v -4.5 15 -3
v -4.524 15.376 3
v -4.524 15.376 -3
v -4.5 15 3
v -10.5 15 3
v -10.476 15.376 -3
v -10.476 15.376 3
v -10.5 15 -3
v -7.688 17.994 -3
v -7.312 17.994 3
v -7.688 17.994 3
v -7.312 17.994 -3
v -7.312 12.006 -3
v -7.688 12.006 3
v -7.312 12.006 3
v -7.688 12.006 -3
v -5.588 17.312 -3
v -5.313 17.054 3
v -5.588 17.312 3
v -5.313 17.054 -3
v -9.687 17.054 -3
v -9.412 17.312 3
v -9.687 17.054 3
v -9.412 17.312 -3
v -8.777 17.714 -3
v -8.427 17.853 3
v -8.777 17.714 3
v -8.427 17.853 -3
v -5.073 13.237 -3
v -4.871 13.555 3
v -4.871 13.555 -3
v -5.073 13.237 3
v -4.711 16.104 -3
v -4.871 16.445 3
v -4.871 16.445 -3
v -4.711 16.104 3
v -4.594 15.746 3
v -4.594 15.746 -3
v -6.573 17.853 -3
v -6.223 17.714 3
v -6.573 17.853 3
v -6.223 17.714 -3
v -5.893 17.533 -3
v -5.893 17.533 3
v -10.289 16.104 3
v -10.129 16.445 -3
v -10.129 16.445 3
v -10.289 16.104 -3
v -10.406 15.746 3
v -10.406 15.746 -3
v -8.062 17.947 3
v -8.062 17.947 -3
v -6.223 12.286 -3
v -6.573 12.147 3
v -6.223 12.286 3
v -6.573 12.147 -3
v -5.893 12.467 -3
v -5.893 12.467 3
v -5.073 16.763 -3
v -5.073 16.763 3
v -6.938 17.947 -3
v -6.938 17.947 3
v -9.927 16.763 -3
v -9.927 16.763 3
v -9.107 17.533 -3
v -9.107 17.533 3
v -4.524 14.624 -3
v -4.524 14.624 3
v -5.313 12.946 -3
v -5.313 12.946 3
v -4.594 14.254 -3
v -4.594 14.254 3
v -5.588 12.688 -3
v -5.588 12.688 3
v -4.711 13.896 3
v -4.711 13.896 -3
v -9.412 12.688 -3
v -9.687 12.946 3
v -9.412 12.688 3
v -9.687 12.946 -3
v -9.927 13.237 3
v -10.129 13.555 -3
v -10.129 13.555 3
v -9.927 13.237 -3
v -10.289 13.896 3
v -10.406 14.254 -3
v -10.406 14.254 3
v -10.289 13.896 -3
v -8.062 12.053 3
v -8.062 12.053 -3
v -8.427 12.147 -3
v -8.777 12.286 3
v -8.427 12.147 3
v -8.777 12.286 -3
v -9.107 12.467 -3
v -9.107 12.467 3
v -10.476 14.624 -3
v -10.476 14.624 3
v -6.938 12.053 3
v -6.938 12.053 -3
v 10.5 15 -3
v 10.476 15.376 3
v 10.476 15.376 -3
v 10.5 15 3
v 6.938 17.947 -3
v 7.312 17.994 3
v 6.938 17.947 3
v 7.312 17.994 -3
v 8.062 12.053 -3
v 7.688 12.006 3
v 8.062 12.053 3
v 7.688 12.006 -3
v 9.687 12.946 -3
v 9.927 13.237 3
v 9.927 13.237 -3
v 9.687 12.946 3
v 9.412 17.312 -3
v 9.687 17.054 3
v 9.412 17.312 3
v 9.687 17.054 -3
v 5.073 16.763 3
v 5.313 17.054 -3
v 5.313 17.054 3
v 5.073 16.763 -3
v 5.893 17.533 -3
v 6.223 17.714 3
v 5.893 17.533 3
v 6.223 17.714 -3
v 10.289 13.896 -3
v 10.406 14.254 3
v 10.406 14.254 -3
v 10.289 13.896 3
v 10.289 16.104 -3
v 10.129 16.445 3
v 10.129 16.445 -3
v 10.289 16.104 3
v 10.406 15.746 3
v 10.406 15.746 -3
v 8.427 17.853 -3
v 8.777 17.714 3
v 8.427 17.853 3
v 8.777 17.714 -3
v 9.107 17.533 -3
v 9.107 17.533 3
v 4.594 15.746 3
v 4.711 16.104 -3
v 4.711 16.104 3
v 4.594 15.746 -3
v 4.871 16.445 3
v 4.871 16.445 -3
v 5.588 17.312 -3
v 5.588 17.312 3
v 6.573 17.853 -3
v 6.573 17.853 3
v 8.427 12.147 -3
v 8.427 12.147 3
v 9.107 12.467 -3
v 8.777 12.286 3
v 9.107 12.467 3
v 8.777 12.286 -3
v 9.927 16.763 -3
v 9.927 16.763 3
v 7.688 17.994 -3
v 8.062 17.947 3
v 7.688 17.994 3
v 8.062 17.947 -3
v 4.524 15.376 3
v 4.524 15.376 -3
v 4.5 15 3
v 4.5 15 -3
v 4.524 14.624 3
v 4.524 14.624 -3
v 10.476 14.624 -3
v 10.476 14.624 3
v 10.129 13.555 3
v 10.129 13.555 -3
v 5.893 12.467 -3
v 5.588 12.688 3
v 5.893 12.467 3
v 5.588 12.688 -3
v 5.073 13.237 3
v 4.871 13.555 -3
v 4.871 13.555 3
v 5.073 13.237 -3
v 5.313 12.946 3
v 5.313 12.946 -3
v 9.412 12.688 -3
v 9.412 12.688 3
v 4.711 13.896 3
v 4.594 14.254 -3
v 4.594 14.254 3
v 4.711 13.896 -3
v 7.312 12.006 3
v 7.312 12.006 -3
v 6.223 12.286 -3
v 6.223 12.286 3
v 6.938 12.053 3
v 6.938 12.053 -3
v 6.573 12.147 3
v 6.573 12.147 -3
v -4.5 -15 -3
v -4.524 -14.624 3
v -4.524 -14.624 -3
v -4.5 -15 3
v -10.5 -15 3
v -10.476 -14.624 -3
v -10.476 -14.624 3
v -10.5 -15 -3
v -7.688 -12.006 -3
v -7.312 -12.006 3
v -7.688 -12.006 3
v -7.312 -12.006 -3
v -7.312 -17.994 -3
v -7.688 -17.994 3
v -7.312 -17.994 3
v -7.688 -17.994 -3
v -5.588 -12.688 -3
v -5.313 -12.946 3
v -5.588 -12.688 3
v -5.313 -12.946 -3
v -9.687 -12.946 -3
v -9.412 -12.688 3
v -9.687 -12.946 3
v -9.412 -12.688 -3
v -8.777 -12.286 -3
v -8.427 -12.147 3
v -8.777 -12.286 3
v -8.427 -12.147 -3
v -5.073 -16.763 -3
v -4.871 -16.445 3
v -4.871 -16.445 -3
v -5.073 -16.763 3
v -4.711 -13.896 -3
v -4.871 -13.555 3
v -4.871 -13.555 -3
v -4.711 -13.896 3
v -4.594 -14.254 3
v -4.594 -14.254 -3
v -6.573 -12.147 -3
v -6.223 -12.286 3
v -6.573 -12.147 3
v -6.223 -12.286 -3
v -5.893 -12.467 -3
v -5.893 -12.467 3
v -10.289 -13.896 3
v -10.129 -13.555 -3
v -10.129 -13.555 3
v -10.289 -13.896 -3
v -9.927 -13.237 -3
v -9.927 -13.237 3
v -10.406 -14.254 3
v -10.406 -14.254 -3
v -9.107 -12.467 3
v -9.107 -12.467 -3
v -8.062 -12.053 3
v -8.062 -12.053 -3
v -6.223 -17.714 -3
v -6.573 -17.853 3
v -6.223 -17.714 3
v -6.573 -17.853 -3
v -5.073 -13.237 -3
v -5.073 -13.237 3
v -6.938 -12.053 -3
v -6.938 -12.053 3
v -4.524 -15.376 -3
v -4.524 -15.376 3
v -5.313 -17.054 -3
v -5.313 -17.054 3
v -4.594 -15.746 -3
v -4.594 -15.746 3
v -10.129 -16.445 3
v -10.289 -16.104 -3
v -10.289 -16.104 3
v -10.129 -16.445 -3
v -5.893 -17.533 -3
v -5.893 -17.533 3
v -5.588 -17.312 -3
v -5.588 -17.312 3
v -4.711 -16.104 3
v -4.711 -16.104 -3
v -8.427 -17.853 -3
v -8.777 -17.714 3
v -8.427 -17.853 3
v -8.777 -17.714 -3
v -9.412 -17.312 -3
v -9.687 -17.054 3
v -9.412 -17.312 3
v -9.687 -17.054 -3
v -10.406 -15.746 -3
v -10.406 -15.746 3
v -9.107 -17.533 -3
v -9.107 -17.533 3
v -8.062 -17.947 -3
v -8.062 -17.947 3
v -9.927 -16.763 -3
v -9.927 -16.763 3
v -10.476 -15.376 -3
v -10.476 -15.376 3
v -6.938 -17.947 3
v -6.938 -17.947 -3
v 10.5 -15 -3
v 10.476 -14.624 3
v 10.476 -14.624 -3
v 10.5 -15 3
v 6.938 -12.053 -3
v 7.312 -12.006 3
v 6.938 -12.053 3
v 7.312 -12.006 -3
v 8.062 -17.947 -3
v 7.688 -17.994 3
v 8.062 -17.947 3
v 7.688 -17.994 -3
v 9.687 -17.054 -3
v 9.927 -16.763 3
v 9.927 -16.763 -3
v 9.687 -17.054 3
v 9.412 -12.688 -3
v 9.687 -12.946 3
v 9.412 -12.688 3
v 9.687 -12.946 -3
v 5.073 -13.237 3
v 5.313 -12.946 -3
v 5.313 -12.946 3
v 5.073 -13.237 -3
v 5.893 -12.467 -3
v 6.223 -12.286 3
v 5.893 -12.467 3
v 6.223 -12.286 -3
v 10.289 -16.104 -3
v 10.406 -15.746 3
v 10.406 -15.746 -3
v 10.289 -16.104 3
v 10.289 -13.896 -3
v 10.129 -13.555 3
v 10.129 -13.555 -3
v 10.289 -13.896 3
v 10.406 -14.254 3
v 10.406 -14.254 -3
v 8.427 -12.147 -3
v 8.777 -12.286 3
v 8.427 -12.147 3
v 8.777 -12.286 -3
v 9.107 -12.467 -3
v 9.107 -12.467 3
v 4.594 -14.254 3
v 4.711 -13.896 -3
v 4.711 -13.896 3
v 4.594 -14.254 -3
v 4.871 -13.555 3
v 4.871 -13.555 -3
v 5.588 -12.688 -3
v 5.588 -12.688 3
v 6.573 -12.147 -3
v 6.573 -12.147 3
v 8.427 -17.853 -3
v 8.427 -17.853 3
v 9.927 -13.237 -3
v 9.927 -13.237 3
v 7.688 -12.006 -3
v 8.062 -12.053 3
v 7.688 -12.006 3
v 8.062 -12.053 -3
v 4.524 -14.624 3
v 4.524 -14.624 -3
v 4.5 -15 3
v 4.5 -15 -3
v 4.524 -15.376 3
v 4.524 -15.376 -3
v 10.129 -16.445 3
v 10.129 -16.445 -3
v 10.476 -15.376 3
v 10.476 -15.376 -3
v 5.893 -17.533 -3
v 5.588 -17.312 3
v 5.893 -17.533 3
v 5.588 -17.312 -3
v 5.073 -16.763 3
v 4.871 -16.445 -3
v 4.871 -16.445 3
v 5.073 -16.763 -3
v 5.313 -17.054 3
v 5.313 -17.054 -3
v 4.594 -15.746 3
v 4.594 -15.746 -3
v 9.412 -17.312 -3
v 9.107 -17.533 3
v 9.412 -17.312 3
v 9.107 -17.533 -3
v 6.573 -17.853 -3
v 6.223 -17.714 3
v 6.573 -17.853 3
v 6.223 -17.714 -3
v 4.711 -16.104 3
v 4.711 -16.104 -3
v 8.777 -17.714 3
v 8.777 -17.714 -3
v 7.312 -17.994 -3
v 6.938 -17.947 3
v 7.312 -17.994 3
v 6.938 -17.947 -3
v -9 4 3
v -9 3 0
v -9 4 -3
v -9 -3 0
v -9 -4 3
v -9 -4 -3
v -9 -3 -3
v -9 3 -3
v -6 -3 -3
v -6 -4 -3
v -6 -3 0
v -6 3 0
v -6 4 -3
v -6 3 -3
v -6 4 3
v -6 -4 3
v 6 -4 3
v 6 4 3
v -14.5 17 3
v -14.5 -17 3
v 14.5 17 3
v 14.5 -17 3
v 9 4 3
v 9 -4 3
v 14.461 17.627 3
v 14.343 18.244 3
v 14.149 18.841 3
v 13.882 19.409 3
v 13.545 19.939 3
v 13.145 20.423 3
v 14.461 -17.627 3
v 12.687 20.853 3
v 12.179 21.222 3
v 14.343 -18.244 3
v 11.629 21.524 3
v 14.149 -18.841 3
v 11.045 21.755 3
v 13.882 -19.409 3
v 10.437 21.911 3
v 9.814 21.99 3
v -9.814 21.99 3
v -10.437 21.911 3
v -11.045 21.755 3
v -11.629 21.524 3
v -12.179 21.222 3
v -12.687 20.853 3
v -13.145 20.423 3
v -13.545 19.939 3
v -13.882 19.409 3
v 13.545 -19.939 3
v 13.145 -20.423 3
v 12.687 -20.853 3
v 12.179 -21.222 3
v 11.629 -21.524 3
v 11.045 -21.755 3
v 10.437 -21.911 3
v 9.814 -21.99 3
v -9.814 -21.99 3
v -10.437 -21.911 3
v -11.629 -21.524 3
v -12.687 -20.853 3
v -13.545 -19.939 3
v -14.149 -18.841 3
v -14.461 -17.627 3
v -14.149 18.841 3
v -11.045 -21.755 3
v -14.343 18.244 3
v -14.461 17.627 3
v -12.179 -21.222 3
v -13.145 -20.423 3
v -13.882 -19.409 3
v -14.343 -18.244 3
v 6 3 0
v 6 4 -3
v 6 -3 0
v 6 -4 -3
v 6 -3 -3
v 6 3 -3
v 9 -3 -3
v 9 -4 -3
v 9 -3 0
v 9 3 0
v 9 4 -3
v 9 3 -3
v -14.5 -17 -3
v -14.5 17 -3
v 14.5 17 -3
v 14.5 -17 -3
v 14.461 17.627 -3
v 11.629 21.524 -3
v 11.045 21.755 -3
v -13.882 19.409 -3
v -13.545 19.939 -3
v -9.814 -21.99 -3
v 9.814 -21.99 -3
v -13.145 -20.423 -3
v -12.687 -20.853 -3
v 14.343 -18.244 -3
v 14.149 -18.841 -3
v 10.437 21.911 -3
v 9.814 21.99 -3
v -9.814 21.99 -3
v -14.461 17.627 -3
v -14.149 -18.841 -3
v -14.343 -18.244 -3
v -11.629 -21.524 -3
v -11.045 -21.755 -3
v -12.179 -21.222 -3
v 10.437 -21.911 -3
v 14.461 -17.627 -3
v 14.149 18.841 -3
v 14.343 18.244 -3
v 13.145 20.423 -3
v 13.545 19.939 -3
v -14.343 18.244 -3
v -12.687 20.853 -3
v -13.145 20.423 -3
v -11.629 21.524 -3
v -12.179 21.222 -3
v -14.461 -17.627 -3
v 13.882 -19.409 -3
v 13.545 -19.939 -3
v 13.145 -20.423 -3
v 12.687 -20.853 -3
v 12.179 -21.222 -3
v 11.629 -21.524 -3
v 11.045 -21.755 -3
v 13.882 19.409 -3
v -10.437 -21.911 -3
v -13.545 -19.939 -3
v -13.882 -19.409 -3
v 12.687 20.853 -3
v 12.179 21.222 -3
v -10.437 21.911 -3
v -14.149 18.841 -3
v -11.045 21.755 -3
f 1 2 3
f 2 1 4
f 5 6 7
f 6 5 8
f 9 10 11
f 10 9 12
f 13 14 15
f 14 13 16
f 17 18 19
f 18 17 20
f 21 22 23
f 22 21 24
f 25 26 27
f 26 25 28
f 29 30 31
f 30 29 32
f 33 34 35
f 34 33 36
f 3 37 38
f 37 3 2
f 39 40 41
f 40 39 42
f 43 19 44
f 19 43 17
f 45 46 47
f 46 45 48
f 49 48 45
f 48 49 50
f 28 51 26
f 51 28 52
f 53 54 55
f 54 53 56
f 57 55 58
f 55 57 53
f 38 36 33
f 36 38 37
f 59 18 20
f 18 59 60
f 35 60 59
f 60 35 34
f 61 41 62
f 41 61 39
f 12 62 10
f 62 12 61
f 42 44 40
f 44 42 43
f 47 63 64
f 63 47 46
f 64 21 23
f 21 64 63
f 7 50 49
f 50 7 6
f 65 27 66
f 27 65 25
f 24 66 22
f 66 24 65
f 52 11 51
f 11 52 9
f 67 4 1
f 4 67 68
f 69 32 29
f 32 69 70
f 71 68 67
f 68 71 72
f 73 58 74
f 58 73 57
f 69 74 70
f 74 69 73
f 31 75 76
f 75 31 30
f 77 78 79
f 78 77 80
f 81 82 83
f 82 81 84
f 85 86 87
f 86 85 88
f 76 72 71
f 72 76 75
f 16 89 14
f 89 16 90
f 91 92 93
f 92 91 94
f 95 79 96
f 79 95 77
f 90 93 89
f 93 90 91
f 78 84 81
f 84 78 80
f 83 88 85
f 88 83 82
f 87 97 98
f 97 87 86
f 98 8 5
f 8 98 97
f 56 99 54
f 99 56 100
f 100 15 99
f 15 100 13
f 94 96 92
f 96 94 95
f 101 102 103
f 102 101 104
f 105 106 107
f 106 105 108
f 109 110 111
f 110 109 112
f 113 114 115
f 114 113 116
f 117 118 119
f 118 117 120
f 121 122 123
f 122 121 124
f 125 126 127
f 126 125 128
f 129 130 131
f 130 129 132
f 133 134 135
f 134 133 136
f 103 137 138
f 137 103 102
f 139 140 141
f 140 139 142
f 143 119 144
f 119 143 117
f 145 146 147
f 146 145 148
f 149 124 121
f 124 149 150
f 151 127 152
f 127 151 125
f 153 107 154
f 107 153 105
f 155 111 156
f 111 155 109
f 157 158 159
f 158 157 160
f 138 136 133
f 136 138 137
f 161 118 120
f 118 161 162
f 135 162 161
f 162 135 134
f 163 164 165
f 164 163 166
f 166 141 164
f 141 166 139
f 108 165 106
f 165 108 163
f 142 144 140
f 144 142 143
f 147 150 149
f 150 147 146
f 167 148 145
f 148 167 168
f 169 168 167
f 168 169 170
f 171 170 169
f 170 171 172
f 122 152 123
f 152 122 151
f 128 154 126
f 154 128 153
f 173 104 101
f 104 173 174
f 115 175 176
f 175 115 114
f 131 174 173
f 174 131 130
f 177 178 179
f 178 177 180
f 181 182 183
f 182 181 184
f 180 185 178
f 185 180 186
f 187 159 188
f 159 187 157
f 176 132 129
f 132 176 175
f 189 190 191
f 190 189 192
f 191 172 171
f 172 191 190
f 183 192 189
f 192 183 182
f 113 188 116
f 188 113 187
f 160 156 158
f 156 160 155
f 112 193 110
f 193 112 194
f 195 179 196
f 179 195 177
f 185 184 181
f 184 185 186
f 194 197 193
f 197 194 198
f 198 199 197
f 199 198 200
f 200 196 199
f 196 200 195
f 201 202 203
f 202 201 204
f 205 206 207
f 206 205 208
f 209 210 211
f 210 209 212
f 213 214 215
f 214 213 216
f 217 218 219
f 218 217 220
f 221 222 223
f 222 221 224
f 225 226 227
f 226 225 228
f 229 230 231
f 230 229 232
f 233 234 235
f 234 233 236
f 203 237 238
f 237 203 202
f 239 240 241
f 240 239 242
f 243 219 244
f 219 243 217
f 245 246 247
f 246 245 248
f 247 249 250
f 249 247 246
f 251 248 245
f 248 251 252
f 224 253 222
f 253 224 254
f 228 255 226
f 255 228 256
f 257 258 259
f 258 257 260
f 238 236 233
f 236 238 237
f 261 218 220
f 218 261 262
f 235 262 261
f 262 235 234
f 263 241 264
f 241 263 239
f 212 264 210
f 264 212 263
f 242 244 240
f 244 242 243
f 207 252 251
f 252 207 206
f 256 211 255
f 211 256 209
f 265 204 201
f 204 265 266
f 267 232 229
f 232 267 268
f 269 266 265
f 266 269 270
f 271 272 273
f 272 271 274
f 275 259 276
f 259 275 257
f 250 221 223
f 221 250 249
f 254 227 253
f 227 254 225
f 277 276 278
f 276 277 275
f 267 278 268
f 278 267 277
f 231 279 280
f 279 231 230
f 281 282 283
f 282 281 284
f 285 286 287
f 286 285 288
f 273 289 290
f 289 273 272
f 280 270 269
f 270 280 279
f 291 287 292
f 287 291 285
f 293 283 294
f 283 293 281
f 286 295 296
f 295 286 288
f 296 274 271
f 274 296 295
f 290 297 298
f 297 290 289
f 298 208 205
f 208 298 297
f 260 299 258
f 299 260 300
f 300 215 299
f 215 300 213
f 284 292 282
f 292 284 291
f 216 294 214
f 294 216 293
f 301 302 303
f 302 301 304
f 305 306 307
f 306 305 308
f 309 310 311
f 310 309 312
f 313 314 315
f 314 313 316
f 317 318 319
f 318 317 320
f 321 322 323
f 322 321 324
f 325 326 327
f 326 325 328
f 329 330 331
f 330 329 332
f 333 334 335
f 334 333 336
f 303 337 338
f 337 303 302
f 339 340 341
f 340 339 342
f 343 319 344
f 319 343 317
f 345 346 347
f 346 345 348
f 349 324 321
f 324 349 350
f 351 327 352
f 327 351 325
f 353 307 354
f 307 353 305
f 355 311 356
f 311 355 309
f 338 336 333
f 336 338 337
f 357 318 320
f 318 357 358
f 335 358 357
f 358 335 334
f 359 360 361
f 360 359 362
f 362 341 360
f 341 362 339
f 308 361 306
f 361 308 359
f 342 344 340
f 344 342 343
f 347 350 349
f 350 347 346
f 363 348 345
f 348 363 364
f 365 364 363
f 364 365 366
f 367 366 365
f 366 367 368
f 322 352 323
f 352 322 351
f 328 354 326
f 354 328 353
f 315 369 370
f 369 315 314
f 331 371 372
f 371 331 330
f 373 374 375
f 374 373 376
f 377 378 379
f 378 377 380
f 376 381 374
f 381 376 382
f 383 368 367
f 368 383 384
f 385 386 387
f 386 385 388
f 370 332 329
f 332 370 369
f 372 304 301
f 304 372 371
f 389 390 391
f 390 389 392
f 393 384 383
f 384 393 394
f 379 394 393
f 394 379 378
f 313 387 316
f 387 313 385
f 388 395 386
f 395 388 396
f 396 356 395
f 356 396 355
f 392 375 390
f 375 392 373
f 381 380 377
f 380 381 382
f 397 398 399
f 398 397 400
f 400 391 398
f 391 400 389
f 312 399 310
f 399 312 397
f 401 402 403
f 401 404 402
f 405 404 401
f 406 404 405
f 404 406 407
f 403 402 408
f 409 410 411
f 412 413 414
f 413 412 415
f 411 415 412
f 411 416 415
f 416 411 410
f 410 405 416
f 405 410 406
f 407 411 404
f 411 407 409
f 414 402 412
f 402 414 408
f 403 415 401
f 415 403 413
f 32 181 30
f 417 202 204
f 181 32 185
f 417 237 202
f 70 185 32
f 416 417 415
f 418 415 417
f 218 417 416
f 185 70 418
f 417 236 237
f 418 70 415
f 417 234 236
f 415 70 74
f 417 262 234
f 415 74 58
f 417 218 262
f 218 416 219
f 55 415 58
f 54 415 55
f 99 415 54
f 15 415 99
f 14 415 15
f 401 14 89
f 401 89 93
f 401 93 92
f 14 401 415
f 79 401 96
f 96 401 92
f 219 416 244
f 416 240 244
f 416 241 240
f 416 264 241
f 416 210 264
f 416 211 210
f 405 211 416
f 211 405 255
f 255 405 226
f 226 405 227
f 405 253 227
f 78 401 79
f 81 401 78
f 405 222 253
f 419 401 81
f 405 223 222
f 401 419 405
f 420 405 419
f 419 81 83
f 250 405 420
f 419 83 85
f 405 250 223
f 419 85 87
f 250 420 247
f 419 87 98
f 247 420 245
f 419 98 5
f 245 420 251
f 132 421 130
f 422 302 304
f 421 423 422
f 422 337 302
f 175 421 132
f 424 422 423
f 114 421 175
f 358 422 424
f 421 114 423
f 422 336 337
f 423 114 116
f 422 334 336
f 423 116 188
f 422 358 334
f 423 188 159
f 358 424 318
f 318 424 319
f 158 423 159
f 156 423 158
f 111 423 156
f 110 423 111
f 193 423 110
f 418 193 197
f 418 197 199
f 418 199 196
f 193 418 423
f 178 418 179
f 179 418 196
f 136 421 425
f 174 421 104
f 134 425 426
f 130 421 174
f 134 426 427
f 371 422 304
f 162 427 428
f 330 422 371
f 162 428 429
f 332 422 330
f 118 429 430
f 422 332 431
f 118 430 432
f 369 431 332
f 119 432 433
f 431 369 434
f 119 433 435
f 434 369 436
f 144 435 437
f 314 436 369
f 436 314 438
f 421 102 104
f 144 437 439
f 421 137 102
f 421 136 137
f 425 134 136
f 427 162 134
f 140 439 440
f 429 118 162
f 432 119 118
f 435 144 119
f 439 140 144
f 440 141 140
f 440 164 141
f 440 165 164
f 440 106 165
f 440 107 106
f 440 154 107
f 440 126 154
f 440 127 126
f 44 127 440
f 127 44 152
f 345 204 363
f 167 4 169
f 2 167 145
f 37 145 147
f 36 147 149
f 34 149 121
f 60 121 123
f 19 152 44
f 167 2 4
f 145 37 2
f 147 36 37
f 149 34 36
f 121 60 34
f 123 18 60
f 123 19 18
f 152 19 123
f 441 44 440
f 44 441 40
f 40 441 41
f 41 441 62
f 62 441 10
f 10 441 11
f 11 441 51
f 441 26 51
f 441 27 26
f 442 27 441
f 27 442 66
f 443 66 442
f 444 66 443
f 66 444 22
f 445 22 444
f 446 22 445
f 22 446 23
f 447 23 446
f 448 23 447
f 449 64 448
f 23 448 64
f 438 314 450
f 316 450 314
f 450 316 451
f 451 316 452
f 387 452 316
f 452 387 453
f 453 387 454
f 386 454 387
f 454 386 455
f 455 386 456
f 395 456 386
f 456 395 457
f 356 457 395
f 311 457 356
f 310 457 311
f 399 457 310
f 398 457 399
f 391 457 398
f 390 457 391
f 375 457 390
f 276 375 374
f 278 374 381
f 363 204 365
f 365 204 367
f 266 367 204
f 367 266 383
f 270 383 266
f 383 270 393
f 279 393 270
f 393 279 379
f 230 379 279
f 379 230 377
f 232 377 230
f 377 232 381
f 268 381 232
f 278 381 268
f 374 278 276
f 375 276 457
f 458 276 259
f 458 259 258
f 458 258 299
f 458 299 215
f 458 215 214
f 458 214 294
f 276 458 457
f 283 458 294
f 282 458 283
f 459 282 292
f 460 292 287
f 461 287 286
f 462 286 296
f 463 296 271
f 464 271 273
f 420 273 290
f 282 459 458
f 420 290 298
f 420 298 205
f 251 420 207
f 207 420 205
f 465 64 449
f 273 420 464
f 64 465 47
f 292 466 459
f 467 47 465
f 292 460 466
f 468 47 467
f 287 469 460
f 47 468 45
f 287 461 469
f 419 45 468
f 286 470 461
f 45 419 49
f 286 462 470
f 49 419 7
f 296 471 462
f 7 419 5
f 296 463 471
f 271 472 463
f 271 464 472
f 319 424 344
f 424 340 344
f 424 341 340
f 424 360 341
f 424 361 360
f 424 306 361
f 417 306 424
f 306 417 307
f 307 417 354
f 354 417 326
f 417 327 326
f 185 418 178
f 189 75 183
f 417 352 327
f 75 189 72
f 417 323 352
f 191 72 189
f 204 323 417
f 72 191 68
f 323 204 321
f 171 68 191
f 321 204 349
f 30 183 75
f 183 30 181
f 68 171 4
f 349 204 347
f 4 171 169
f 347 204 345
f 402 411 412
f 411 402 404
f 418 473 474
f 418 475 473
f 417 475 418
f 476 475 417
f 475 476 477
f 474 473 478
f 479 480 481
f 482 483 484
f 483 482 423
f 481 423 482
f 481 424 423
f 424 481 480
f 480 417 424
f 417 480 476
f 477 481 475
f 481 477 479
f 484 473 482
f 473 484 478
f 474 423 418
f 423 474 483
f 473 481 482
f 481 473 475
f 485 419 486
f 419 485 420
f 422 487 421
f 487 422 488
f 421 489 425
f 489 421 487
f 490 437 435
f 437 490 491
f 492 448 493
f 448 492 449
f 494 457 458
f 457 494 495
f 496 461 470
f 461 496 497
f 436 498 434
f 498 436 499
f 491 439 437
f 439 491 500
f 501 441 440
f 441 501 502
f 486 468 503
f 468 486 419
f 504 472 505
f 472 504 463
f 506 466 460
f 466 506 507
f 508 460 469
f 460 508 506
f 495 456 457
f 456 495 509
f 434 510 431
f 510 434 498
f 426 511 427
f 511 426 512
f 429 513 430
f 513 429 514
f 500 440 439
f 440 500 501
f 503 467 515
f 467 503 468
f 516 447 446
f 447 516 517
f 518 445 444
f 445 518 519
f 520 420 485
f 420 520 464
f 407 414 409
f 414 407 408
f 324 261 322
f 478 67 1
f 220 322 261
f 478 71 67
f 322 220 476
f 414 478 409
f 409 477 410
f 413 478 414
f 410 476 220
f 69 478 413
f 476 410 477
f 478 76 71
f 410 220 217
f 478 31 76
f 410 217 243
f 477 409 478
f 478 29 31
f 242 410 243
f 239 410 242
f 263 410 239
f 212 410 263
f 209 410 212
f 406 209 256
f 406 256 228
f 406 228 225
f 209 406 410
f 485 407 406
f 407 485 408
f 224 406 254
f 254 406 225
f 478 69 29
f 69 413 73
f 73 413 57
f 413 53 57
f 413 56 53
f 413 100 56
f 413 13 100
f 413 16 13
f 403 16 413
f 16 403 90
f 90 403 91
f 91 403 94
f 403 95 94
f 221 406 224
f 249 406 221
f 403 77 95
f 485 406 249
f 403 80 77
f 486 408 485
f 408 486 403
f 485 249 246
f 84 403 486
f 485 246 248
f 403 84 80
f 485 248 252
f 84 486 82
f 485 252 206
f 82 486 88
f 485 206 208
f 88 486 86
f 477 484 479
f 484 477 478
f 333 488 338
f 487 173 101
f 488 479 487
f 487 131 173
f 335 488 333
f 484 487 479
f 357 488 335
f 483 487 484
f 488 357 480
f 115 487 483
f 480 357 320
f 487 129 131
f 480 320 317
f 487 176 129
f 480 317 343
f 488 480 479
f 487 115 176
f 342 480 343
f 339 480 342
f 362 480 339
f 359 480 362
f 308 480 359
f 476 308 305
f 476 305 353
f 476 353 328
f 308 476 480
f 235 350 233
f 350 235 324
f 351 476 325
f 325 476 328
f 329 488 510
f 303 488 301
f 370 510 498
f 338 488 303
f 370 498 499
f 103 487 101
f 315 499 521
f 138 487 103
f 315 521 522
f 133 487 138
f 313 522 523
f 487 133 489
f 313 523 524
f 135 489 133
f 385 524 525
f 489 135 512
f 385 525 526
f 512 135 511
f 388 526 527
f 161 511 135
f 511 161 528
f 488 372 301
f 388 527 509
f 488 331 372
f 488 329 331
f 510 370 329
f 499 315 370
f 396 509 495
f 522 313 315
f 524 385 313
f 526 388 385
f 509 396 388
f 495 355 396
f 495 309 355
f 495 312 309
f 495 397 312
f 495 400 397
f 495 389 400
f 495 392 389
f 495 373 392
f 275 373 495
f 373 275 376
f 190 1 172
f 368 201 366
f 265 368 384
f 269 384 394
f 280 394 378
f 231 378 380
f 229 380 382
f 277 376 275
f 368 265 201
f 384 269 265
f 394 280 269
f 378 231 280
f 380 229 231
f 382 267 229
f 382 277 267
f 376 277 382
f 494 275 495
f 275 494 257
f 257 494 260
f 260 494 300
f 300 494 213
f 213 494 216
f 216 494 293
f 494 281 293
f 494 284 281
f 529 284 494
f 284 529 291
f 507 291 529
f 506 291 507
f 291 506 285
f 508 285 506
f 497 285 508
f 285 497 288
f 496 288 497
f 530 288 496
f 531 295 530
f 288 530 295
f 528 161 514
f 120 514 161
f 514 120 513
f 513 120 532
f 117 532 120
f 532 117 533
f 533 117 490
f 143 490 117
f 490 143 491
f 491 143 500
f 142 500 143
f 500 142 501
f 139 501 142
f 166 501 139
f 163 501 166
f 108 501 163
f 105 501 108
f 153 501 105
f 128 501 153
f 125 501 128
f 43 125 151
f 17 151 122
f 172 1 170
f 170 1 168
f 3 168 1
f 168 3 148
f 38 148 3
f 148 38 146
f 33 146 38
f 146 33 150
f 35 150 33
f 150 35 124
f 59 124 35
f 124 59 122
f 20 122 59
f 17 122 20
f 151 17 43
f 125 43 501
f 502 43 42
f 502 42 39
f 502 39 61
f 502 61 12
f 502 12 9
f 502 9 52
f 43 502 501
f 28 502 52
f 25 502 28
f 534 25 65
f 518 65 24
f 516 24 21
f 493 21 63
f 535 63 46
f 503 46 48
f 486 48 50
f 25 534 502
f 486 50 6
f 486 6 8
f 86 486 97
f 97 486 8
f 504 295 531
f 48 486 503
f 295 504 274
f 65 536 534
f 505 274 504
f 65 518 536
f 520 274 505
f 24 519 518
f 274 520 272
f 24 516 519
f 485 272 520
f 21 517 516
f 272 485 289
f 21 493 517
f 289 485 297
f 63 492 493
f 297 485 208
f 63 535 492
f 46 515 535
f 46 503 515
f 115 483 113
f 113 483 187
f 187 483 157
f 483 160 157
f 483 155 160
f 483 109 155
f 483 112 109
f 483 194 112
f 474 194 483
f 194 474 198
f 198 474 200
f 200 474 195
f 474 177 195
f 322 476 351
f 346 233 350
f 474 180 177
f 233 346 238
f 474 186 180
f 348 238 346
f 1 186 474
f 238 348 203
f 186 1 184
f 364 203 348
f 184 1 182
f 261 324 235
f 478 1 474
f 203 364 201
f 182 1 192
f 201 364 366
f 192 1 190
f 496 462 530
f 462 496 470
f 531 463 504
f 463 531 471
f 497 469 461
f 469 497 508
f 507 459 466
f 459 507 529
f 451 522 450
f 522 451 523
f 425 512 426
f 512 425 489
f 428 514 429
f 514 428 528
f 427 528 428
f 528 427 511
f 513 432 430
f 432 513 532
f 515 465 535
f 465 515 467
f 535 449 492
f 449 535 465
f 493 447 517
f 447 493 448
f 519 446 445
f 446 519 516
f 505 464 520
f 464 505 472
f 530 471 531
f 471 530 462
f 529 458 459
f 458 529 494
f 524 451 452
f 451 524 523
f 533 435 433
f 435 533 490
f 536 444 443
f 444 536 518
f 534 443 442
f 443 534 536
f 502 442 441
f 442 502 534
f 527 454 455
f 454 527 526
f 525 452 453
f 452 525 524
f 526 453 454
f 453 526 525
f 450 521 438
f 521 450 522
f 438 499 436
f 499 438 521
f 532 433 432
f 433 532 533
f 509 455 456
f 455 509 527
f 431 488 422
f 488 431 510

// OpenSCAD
$fn = 50;


difference() {
	union() {
		translate(v = [0, 0, -3.0000000000]) {
			rotate(a = [0, 0, 0]) {
				hull() {
					translate(v = [-9.5000000000, 17.0000000000, 0]) {
						rotate(a = [0, 0, 0]) {
							translate(v = [0, 0, 0]) {
								rotate(a = [0, 0, 0]) {
									cylinder(h = 6, r = 5);
								}
							}
						}
					}
					translate(v = [9.5000000000, 17.0000000000, 0]) {
						rotate(a = [0, 0, 0]) {
							translate(v = [0, 0, 0]) {
								rotate(a = [0, 0, 0]) {
									cylinder(h = 6, r = 5);
								}
							}
						}
					}
					translate(v = [-9.5000000000, -17.0000000000, 0]) {
						rotate(a = [0, 0, 0]) {
							translate(v = [0, 0, 0]) {
								rotate(a = [0, 0, 0]) {
									cylinder(h = 6, r = 5);
								}
							}
						}
					}
					translate(v = [9.5000000000, -17.0000000000, 0]) {
						rotate(a = [0, 0, 0]) {
							translate(v = [0, 0, 0]) {
								rotate(a = [0, 0, 0]) {
									cylinder(h = 6, r = 5);
								}
							}
						}
					}
				}
			}
		}
	}
	union() {
		translate(v = [-7.5000000000, 15.0000000000, -125.0000000000]) {
			rotate(a = [0, 0, 0]) {
				cylinder(h = 250, r = 3.0000000000);
			}
		}
		translate(v = [7.5000000000, 15.0000000000, -125.0000000000]) {
			rotate(a = [0, 0, 0]) {
				cylinder(h = 250, r = 3.0000000000);
			}
		}
		translate(v = [-7.5000000000, -15.0000000000, -125.0000000000]) {
			rotate(a = [0, 0, 0]) {
				cylinder(h = 250, r = 3.0000000000);
			}
		}
		translate(v = [7.5000000000, -15.0000000000, -125.0000000000]) {
			rotate(a = [0, 0, 0]) {
				cylinder(h = 250, r = 3.0000000000);
			}
		}
		translate(v = [-9.0000000000, -4.0000000000, -50]) {
			rotate(a = [0, 0, 0]) {
				cube(size = [3, 1, 100]);
			}
		}
		translate(v = [-9.0000000000, 3.0000000000, -50]) {
			rotate(a = [0, 0, 0]) {
				cube(size = [3, 1, 100]);
			}
		}
		translate(v = [-9.0000000000, -4.0000000000, 0]) {
			rotate(a = [0, 0, 0]) {
				cube(size = [3, 8, 3]);
			}
		}
		translate(v = [6.0000000000, -4.0000000000, -50]) {
			rotate(a = [0, 0, 0]) {
				cube(size = [3, 1, 100]);
			}
		}
		translate(v = [6.0000000000, 3.0000000000, -50]) {
			rotate(a = [0, 0, 0]) {
				cube(size = [3, 1, 100]);
			}
		}
		translate(v = [6.0000000000, -4.0000000000, 0]) {
			rotate(a = [0, 0, 0]) {
				cube(size = [3, 8, 3]);
			}
		}
	}
}
